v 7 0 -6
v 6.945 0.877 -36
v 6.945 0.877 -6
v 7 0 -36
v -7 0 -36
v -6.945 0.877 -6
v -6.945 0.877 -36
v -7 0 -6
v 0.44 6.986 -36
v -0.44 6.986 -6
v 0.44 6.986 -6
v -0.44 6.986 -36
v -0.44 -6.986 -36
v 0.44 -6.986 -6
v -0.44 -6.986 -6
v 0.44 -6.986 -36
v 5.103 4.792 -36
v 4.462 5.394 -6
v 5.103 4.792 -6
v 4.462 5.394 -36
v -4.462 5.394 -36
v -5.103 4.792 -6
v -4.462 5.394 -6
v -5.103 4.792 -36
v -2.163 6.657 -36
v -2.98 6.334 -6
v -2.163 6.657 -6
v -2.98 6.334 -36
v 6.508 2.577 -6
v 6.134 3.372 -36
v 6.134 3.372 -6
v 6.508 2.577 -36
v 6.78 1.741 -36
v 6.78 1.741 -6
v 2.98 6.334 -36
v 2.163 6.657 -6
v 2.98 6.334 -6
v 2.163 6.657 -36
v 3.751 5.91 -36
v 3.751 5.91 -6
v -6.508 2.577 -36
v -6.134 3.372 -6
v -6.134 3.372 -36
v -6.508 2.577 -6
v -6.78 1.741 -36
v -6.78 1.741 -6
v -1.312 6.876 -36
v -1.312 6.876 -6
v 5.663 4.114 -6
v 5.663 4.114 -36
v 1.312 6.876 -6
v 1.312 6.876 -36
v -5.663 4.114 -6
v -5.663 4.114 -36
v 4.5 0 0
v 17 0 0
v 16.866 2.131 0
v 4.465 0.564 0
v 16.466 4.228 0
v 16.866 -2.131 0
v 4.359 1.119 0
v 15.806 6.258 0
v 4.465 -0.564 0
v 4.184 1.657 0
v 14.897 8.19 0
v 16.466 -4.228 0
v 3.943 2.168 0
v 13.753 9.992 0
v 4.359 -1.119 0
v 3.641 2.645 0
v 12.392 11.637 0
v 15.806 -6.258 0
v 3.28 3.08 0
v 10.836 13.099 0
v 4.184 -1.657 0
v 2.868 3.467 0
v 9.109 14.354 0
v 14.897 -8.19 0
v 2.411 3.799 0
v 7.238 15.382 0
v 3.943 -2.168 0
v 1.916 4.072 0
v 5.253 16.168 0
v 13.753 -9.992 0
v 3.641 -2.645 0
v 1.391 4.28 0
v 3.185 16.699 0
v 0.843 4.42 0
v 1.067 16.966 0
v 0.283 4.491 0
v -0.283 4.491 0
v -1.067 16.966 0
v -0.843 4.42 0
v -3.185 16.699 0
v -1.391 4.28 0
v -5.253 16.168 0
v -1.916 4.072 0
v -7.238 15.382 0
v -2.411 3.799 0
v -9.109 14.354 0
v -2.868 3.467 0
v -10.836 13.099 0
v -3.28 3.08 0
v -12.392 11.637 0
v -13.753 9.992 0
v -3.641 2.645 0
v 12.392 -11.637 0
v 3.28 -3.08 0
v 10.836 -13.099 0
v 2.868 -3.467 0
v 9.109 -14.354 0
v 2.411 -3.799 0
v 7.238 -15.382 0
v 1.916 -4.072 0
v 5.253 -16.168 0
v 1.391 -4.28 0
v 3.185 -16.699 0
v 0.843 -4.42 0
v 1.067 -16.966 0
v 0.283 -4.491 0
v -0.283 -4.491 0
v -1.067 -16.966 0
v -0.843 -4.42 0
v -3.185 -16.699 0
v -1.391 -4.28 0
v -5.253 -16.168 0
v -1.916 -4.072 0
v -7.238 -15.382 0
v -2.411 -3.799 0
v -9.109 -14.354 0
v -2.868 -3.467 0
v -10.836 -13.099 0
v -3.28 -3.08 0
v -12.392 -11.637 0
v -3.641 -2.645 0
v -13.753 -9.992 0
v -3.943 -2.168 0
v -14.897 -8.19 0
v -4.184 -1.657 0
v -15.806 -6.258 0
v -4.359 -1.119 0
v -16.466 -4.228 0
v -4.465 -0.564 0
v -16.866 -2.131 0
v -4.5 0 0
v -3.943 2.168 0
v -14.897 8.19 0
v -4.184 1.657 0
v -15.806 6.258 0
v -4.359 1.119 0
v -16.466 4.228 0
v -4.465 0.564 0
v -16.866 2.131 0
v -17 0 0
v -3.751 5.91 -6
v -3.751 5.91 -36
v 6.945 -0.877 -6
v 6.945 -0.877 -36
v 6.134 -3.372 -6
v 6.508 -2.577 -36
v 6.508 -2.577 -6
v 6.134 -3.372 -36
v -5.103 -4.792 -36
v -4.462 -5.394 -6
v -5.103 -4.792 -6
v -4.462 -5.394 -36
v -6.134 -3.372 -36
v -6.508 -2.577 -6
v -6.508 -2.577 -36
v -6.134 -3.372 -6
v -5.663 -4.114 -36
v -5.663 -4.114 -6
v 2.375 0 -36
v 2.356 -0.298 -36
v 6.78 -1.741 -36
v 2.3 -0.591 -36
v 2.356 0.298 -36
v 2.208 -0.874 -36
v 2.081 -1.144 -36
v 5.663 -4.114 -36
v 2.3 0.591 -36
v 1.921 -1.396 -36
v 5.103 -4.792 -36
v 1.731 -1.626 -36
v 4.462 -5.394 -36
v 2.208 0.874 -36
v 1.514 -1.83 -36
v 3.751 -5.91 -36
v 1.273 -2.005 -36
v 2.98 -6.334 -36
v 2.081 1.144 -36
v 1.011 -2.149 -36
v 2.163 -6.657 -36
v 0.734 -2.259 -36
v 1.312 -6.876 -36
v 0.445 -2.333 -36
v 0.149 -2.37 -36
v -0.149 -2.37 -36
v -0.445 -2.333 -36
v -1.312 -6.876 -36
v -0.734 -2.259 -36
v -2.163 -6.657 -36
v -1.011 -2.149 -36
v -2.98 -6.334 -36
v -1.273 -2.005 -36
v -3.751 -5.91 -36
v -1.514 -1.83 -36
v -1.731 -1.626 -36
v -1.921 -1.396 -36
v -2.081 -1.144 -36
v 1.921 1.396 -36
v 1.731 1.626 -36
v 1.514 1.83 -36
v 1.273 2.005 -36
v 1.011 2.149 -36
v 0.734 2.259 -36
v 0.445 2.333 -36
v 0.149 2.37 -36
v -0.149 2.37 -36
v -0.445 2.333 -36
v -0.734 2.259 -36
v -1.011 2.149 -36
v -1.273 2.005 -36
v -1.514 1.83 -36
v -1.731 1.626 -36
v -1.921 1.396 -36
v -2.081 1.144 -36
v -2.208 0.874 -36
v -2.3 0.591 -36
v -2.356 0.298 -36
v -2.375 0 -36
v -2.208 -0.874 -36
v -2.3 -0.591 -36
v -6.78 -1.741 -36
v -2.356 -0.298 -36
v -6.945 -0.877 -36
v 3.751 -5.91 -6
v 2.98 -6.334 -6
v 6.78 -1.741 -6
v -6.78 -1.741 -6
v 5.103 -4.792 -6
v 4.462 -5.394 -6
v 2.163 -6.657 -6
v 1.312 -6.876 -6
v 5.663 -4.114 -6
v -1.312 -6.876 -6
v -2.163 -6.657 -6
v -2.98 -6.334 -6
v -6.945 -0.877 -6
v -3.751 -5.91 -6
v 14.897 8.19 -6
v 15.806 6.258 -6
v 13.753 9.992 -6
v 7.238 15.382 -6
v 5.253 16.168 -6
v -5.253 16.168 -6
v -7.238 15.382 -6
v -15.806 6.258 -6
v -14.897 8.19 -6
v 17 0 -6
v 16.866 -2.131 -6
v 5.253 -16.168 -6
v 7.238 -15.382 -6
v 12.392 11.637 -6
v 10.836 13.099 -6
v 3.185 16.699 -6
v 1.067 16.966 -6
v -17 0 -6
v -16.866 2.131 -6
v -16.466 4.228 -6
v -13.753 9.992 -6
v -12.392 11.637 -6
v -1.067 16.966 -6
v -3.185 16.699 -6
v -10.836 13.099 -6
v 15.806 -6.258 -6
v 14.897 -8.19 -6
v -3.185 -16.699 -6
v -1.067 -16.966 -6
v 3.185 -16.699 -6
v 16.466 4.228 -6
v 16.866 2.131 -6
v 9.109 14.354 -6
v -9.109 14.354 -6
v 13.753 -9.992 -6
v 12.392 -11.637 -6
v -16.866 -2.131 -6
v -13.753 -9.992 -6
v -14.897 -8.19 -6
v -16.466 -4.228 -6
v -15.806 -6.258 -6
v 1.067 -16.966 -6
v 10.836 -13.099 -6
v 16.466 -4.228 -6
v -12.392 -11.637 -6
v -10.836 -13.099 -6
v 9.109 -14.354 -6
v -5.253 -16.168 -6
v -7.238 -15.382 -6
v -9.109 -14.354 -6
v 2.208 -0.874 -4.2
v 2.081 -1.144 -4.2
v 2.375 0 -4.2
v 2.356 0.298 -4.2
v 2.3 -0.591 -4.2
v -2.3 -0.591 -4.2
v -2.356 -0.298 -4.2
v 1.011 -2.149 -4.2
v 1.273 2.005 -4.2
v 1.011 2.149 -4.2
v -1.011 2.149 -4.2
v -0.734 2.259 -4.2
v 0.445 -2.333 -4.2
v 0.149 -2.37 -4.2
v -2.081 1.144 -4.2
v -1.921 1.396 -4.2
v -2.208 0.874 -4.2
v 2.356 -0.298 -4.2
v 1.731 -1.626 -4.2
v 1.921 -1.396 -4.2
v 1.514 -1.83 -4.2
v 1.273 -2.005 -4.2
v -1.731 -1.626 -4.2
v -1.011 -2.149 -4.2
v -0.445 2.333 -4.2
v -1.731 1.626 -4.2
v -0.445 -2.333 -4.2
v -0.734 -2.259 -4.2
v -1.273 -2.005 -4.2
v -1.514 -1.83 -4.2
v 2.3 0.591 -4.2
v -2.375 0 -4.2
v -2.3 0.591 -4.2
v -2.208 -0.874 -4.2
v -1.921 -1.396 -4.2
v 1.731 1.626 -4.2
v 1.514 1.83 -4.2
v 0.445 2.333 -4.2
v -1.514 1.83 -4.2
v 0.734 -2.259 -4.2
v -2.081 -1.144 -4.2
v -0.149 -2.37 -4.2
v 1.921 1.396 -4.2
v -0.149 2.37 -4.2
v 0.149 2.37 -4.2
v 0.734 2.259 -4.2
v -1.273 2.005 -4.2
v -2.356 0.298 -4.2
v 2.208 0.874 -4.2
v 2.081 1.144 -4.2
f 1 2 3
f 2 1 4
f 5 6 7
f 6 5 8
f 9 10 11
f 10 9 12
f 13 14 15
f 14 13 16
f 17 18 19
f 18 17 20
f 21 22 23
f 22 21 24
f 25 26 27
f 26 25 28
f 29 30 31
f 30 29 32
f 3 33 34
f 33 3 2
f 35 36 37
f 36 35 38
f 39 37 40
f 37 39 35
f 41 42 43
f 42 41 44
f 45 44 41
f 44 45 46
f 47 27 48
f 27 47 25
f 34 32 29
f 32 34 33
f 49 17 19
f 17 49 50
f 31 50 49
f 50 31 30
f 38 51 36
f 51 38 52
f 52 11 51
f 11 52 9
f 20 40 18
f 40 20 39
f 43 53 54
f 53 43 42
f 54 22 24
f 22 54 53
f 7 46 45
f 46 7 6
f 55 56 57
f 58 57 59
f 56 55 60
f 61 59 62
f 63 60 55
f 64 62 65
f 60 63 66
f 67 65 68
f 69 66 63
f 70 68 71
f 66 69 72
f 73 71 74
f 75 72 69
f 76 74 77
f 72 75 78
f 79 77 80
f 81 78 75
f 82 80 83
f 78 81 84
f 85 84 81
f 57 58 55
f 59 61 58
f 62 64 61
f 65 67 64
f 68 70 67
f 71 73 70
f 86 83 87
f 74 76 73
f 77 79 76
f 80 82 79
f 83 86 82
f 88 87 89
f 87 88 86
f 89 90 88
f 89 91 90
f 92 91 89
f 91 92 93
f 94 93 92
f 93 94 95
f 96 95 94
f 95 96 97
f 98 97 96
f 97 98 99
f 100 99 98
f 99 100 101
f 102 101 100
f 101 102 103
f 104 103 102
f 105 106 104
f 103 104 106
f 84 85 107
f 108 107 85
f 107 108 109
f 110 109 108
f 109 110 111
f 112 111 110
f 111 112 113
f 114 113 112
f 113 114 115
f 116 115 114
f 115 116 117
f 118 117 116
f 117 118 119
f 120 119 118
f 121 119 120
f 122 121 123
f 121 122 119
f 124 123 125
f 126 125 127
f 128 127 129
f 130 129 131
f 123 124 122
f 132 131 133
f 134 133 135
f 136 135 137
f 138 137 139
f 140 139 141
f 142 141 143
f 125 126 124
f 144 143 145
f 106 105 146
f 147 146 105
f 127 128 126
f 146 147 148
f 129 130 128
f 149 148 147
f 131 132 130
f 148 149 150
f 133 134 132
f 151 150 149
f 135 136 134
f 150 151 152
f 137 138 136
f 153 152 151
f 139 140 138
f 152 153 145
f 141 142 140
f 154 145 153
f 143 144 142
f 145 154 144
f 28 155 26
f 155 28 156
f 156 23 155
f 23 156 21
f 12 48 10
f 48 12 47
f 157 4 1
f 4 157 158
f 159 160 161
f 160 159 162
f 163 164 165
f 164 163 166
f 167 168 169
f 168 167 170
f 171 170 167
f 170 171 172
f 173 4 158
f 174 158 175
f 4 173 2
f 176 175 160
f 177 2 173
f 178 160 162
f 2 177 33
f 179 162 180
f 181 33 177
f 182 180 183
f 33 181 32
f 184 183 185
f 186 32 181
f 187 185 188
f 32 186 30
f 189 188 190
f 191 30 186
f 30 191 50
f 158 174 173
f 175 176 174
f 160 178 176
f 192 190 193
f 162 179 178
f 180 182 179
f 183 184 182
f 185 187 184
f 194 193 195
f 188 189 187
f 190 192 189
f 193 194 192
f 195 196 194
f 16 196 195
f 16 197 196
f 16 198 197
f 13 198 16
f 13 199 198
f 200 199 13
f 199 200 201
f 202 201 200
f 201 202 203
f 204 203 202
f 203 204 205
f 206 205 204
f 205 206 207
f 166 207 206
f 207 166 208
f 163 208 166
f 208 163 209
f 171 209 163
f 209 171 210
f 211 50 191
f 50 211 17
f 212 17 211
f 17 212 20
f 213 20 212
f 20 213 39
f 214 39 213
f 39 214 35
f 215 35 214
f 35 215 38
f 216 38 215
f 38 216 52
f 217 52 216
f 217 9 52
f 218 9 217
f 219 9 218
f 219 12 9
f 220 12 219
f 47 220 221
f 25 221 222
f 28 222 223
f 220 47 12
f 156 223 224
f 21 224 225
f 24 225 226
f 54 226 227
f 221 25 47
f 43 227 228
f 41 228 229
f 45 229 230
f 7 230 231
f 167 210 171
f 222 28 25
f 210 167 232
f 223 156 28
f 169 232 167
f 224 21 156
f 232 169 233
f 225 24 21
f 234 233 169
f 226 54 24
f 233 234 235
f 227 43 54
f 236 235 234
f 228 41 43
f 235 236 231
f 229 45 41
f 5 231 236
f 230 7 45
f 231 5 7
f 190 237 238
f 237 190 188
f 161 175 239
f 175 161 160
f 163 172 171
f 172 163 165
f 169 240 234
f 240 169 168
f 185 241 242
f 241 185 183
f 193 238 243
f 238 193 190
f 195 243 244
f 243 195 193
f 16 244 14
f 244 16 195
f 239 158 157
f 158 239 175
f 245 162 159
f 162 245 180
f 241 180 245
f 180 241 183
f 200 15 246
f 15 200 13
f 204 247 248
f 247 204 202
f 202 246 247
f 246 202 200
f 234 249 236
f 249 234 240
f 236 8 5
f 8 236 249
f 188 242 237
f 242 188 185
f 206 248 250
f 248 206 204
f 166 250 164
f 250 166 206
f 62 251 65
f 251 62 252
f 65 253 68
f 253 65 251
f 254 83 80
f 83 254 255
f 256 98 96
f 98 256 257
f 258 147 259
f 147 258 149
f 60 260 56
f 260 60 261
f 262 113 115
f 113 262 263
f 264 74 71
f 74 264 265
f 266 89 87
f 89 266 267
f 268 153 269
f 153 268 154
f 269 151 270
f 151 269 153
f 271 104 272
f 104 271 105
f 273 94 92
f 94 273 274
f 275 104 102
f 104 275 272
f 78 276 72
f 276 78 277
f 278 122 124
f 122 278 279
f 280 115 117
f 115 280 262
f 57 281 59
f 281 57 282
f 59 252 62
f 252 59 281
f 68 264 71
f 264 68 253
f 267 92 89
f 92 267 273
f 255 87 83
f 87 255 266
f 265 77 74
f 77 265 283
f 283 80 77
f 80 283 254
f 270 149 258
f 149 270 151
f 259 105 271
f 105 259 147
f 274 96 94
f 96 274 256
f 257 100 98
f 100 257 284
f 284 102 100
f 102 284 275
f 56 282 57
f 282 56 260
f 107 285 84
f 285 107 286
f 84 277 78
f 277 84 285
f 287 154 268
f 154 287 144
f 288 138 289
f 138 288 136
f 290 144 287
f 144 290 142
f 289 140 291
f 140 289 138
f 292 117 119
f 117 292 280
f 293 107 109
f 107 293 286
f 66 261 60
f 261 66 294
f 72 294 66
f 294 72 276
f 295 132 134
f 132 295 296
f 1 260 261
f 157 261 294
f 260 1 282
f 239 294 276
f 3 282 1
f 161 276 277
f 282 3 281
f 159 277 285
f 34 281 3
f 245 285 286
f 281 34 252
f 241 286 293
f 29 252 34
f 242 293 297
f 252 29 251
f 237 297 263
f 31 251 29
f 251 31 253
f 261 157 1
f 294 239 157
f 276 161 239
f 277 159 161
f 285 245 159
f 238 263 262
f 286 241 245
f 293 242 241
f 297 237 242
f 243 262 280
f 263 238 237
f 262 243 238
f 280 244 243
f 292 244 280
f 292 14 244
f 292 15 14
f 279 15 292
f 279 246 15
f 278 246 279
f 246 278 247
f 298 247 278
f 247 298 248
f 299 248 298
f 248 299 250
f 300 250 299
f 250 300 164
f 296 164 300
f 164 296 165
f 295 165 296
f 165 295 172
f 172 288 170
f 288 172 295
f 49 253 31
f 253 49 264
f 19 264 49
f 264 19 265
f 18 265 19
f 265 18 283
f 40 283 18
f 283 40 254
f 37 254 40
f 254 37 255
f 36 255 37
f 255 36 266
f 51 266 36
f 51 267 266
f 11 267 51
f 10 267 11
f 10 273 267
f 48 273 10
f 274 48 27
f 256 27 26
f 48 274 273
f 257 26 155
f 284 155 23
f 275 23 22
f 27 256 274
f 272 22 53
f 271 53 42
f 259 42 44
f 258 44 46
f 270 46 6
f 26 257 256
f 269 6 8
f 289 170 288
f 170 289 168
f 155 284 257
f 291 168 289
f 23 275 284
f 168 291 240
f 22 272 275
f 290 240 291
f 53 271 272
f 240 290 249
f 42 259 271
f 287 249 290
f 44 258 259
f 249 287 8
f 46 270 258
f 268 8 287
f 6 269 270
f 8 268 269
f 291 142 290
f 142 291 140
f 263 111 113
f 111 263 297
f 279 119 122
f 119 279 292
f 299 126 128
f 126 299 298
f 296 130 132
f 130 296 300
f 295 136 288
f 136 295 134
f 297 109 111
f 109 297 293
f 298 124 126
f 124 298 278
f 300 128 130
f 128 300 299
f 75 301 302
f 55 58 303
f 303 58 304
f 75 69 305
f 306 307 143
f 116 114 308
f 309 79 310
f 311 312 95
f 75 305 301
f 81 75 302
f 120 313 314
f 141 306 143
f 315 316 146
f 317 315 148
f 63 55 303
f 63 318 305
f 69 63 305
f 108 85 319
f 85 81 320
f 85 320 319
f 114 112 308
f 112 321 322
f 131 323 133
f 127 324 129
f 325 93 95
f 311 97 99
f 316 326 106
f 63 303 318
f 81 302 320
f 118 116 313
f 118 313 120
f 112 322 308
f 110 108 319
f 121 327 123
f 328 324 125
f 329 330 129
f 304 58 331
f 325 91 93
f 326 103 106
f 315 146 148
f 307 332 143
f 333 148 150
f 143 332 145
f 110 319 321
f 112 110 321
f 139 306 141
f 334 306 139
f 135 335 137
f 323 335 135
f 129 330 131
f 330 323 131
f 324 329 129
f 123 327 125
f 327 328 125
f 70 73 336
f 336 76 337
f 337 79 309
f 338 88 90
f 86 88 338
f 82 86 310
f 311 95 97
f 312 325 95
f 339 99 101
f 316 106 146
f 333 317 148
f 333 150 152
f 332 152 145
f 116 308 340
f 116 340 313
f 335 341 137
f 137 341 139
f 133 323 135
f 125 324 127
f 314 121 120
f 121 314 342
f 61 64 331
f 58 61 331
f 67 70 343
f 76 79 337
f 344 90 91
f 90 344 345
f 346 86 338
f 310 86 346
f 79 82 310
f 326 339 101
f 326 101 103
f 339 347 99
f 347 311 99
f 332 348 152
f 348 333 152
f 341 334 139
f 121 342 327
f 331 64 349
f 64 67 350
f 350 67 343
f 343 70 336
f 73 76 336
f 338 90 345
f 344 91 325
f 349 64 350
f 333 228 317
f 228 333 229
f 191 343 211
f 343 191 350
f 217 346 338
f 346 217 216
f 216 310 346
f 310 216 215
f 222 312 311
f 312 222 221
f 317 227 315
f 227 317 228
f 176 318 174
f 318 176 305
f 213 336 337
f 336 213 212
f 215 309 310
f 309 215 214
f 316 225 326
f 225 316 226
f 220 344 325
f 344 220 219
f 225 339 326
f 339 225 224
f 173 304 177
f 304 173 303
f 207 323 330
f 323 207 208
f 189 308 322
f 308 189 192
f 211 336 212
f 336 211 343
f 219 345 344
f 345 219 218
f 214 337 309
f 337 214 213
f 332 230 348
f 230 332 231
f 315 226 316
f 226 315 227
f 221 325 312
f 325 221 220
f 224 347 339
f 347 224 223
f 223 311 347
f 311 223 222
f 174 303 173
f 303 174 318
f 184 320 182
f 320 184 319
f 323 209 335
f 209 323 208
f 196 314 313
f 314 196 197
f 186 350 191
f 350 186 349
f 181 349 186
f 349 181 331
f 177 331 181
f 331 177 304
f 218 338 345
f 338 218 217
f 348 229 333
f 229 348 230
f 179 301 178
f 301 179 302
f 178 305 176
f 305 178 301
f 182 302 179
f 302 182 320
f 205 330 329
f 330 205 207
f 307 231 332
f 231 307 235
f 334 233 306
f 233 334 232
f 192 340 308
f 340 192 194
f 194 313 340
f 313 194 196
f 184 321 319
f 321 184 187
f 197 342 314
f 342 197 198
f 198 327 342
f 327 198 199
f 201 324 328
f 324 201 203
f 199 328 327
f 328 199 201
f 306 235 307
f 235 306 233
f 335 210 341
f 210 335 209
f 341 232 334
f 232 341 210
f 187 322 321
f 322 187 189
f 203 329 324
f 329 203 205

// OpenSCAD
$fn = 50;


difference() {
	union() {
		translate(v = [0, 0, -36.0000000000]) {
			cylinder(h = 36, r = 7.0000000000);
		}
		translate(v = [0, 0, -6.0000000000]) {
			cylinder(h = 6, r = 17.0000000000);
		}
	}
	union() {
		translate(v = [0, 0, 0]) {
			rotate(a = [0, 0, 0]) {
				difference() {
					union() {
						#translate(v = [0, 0, -36.0000000000]) {
							cylinder(h = 36, r = 2.2500000000);
						}
						#translate(v = [0, 0, -4.2000000000]) {
							cylinder(h = 4.2000000000, r = 7.0000000000, r1 = 2.3750000000, r2 = 4.5000000000);
						}
						#translate(v = [0, 0, -36.0000000000]) {
							cylinder(h = 36, r = 2.3750000000);
						}
						#translate(v = [0, 0, -36.0000000000]) {
							cylinder(h = 36, r = 2.2500000000);
						}
					}
					union();
				}
			}
		}
	}
}
